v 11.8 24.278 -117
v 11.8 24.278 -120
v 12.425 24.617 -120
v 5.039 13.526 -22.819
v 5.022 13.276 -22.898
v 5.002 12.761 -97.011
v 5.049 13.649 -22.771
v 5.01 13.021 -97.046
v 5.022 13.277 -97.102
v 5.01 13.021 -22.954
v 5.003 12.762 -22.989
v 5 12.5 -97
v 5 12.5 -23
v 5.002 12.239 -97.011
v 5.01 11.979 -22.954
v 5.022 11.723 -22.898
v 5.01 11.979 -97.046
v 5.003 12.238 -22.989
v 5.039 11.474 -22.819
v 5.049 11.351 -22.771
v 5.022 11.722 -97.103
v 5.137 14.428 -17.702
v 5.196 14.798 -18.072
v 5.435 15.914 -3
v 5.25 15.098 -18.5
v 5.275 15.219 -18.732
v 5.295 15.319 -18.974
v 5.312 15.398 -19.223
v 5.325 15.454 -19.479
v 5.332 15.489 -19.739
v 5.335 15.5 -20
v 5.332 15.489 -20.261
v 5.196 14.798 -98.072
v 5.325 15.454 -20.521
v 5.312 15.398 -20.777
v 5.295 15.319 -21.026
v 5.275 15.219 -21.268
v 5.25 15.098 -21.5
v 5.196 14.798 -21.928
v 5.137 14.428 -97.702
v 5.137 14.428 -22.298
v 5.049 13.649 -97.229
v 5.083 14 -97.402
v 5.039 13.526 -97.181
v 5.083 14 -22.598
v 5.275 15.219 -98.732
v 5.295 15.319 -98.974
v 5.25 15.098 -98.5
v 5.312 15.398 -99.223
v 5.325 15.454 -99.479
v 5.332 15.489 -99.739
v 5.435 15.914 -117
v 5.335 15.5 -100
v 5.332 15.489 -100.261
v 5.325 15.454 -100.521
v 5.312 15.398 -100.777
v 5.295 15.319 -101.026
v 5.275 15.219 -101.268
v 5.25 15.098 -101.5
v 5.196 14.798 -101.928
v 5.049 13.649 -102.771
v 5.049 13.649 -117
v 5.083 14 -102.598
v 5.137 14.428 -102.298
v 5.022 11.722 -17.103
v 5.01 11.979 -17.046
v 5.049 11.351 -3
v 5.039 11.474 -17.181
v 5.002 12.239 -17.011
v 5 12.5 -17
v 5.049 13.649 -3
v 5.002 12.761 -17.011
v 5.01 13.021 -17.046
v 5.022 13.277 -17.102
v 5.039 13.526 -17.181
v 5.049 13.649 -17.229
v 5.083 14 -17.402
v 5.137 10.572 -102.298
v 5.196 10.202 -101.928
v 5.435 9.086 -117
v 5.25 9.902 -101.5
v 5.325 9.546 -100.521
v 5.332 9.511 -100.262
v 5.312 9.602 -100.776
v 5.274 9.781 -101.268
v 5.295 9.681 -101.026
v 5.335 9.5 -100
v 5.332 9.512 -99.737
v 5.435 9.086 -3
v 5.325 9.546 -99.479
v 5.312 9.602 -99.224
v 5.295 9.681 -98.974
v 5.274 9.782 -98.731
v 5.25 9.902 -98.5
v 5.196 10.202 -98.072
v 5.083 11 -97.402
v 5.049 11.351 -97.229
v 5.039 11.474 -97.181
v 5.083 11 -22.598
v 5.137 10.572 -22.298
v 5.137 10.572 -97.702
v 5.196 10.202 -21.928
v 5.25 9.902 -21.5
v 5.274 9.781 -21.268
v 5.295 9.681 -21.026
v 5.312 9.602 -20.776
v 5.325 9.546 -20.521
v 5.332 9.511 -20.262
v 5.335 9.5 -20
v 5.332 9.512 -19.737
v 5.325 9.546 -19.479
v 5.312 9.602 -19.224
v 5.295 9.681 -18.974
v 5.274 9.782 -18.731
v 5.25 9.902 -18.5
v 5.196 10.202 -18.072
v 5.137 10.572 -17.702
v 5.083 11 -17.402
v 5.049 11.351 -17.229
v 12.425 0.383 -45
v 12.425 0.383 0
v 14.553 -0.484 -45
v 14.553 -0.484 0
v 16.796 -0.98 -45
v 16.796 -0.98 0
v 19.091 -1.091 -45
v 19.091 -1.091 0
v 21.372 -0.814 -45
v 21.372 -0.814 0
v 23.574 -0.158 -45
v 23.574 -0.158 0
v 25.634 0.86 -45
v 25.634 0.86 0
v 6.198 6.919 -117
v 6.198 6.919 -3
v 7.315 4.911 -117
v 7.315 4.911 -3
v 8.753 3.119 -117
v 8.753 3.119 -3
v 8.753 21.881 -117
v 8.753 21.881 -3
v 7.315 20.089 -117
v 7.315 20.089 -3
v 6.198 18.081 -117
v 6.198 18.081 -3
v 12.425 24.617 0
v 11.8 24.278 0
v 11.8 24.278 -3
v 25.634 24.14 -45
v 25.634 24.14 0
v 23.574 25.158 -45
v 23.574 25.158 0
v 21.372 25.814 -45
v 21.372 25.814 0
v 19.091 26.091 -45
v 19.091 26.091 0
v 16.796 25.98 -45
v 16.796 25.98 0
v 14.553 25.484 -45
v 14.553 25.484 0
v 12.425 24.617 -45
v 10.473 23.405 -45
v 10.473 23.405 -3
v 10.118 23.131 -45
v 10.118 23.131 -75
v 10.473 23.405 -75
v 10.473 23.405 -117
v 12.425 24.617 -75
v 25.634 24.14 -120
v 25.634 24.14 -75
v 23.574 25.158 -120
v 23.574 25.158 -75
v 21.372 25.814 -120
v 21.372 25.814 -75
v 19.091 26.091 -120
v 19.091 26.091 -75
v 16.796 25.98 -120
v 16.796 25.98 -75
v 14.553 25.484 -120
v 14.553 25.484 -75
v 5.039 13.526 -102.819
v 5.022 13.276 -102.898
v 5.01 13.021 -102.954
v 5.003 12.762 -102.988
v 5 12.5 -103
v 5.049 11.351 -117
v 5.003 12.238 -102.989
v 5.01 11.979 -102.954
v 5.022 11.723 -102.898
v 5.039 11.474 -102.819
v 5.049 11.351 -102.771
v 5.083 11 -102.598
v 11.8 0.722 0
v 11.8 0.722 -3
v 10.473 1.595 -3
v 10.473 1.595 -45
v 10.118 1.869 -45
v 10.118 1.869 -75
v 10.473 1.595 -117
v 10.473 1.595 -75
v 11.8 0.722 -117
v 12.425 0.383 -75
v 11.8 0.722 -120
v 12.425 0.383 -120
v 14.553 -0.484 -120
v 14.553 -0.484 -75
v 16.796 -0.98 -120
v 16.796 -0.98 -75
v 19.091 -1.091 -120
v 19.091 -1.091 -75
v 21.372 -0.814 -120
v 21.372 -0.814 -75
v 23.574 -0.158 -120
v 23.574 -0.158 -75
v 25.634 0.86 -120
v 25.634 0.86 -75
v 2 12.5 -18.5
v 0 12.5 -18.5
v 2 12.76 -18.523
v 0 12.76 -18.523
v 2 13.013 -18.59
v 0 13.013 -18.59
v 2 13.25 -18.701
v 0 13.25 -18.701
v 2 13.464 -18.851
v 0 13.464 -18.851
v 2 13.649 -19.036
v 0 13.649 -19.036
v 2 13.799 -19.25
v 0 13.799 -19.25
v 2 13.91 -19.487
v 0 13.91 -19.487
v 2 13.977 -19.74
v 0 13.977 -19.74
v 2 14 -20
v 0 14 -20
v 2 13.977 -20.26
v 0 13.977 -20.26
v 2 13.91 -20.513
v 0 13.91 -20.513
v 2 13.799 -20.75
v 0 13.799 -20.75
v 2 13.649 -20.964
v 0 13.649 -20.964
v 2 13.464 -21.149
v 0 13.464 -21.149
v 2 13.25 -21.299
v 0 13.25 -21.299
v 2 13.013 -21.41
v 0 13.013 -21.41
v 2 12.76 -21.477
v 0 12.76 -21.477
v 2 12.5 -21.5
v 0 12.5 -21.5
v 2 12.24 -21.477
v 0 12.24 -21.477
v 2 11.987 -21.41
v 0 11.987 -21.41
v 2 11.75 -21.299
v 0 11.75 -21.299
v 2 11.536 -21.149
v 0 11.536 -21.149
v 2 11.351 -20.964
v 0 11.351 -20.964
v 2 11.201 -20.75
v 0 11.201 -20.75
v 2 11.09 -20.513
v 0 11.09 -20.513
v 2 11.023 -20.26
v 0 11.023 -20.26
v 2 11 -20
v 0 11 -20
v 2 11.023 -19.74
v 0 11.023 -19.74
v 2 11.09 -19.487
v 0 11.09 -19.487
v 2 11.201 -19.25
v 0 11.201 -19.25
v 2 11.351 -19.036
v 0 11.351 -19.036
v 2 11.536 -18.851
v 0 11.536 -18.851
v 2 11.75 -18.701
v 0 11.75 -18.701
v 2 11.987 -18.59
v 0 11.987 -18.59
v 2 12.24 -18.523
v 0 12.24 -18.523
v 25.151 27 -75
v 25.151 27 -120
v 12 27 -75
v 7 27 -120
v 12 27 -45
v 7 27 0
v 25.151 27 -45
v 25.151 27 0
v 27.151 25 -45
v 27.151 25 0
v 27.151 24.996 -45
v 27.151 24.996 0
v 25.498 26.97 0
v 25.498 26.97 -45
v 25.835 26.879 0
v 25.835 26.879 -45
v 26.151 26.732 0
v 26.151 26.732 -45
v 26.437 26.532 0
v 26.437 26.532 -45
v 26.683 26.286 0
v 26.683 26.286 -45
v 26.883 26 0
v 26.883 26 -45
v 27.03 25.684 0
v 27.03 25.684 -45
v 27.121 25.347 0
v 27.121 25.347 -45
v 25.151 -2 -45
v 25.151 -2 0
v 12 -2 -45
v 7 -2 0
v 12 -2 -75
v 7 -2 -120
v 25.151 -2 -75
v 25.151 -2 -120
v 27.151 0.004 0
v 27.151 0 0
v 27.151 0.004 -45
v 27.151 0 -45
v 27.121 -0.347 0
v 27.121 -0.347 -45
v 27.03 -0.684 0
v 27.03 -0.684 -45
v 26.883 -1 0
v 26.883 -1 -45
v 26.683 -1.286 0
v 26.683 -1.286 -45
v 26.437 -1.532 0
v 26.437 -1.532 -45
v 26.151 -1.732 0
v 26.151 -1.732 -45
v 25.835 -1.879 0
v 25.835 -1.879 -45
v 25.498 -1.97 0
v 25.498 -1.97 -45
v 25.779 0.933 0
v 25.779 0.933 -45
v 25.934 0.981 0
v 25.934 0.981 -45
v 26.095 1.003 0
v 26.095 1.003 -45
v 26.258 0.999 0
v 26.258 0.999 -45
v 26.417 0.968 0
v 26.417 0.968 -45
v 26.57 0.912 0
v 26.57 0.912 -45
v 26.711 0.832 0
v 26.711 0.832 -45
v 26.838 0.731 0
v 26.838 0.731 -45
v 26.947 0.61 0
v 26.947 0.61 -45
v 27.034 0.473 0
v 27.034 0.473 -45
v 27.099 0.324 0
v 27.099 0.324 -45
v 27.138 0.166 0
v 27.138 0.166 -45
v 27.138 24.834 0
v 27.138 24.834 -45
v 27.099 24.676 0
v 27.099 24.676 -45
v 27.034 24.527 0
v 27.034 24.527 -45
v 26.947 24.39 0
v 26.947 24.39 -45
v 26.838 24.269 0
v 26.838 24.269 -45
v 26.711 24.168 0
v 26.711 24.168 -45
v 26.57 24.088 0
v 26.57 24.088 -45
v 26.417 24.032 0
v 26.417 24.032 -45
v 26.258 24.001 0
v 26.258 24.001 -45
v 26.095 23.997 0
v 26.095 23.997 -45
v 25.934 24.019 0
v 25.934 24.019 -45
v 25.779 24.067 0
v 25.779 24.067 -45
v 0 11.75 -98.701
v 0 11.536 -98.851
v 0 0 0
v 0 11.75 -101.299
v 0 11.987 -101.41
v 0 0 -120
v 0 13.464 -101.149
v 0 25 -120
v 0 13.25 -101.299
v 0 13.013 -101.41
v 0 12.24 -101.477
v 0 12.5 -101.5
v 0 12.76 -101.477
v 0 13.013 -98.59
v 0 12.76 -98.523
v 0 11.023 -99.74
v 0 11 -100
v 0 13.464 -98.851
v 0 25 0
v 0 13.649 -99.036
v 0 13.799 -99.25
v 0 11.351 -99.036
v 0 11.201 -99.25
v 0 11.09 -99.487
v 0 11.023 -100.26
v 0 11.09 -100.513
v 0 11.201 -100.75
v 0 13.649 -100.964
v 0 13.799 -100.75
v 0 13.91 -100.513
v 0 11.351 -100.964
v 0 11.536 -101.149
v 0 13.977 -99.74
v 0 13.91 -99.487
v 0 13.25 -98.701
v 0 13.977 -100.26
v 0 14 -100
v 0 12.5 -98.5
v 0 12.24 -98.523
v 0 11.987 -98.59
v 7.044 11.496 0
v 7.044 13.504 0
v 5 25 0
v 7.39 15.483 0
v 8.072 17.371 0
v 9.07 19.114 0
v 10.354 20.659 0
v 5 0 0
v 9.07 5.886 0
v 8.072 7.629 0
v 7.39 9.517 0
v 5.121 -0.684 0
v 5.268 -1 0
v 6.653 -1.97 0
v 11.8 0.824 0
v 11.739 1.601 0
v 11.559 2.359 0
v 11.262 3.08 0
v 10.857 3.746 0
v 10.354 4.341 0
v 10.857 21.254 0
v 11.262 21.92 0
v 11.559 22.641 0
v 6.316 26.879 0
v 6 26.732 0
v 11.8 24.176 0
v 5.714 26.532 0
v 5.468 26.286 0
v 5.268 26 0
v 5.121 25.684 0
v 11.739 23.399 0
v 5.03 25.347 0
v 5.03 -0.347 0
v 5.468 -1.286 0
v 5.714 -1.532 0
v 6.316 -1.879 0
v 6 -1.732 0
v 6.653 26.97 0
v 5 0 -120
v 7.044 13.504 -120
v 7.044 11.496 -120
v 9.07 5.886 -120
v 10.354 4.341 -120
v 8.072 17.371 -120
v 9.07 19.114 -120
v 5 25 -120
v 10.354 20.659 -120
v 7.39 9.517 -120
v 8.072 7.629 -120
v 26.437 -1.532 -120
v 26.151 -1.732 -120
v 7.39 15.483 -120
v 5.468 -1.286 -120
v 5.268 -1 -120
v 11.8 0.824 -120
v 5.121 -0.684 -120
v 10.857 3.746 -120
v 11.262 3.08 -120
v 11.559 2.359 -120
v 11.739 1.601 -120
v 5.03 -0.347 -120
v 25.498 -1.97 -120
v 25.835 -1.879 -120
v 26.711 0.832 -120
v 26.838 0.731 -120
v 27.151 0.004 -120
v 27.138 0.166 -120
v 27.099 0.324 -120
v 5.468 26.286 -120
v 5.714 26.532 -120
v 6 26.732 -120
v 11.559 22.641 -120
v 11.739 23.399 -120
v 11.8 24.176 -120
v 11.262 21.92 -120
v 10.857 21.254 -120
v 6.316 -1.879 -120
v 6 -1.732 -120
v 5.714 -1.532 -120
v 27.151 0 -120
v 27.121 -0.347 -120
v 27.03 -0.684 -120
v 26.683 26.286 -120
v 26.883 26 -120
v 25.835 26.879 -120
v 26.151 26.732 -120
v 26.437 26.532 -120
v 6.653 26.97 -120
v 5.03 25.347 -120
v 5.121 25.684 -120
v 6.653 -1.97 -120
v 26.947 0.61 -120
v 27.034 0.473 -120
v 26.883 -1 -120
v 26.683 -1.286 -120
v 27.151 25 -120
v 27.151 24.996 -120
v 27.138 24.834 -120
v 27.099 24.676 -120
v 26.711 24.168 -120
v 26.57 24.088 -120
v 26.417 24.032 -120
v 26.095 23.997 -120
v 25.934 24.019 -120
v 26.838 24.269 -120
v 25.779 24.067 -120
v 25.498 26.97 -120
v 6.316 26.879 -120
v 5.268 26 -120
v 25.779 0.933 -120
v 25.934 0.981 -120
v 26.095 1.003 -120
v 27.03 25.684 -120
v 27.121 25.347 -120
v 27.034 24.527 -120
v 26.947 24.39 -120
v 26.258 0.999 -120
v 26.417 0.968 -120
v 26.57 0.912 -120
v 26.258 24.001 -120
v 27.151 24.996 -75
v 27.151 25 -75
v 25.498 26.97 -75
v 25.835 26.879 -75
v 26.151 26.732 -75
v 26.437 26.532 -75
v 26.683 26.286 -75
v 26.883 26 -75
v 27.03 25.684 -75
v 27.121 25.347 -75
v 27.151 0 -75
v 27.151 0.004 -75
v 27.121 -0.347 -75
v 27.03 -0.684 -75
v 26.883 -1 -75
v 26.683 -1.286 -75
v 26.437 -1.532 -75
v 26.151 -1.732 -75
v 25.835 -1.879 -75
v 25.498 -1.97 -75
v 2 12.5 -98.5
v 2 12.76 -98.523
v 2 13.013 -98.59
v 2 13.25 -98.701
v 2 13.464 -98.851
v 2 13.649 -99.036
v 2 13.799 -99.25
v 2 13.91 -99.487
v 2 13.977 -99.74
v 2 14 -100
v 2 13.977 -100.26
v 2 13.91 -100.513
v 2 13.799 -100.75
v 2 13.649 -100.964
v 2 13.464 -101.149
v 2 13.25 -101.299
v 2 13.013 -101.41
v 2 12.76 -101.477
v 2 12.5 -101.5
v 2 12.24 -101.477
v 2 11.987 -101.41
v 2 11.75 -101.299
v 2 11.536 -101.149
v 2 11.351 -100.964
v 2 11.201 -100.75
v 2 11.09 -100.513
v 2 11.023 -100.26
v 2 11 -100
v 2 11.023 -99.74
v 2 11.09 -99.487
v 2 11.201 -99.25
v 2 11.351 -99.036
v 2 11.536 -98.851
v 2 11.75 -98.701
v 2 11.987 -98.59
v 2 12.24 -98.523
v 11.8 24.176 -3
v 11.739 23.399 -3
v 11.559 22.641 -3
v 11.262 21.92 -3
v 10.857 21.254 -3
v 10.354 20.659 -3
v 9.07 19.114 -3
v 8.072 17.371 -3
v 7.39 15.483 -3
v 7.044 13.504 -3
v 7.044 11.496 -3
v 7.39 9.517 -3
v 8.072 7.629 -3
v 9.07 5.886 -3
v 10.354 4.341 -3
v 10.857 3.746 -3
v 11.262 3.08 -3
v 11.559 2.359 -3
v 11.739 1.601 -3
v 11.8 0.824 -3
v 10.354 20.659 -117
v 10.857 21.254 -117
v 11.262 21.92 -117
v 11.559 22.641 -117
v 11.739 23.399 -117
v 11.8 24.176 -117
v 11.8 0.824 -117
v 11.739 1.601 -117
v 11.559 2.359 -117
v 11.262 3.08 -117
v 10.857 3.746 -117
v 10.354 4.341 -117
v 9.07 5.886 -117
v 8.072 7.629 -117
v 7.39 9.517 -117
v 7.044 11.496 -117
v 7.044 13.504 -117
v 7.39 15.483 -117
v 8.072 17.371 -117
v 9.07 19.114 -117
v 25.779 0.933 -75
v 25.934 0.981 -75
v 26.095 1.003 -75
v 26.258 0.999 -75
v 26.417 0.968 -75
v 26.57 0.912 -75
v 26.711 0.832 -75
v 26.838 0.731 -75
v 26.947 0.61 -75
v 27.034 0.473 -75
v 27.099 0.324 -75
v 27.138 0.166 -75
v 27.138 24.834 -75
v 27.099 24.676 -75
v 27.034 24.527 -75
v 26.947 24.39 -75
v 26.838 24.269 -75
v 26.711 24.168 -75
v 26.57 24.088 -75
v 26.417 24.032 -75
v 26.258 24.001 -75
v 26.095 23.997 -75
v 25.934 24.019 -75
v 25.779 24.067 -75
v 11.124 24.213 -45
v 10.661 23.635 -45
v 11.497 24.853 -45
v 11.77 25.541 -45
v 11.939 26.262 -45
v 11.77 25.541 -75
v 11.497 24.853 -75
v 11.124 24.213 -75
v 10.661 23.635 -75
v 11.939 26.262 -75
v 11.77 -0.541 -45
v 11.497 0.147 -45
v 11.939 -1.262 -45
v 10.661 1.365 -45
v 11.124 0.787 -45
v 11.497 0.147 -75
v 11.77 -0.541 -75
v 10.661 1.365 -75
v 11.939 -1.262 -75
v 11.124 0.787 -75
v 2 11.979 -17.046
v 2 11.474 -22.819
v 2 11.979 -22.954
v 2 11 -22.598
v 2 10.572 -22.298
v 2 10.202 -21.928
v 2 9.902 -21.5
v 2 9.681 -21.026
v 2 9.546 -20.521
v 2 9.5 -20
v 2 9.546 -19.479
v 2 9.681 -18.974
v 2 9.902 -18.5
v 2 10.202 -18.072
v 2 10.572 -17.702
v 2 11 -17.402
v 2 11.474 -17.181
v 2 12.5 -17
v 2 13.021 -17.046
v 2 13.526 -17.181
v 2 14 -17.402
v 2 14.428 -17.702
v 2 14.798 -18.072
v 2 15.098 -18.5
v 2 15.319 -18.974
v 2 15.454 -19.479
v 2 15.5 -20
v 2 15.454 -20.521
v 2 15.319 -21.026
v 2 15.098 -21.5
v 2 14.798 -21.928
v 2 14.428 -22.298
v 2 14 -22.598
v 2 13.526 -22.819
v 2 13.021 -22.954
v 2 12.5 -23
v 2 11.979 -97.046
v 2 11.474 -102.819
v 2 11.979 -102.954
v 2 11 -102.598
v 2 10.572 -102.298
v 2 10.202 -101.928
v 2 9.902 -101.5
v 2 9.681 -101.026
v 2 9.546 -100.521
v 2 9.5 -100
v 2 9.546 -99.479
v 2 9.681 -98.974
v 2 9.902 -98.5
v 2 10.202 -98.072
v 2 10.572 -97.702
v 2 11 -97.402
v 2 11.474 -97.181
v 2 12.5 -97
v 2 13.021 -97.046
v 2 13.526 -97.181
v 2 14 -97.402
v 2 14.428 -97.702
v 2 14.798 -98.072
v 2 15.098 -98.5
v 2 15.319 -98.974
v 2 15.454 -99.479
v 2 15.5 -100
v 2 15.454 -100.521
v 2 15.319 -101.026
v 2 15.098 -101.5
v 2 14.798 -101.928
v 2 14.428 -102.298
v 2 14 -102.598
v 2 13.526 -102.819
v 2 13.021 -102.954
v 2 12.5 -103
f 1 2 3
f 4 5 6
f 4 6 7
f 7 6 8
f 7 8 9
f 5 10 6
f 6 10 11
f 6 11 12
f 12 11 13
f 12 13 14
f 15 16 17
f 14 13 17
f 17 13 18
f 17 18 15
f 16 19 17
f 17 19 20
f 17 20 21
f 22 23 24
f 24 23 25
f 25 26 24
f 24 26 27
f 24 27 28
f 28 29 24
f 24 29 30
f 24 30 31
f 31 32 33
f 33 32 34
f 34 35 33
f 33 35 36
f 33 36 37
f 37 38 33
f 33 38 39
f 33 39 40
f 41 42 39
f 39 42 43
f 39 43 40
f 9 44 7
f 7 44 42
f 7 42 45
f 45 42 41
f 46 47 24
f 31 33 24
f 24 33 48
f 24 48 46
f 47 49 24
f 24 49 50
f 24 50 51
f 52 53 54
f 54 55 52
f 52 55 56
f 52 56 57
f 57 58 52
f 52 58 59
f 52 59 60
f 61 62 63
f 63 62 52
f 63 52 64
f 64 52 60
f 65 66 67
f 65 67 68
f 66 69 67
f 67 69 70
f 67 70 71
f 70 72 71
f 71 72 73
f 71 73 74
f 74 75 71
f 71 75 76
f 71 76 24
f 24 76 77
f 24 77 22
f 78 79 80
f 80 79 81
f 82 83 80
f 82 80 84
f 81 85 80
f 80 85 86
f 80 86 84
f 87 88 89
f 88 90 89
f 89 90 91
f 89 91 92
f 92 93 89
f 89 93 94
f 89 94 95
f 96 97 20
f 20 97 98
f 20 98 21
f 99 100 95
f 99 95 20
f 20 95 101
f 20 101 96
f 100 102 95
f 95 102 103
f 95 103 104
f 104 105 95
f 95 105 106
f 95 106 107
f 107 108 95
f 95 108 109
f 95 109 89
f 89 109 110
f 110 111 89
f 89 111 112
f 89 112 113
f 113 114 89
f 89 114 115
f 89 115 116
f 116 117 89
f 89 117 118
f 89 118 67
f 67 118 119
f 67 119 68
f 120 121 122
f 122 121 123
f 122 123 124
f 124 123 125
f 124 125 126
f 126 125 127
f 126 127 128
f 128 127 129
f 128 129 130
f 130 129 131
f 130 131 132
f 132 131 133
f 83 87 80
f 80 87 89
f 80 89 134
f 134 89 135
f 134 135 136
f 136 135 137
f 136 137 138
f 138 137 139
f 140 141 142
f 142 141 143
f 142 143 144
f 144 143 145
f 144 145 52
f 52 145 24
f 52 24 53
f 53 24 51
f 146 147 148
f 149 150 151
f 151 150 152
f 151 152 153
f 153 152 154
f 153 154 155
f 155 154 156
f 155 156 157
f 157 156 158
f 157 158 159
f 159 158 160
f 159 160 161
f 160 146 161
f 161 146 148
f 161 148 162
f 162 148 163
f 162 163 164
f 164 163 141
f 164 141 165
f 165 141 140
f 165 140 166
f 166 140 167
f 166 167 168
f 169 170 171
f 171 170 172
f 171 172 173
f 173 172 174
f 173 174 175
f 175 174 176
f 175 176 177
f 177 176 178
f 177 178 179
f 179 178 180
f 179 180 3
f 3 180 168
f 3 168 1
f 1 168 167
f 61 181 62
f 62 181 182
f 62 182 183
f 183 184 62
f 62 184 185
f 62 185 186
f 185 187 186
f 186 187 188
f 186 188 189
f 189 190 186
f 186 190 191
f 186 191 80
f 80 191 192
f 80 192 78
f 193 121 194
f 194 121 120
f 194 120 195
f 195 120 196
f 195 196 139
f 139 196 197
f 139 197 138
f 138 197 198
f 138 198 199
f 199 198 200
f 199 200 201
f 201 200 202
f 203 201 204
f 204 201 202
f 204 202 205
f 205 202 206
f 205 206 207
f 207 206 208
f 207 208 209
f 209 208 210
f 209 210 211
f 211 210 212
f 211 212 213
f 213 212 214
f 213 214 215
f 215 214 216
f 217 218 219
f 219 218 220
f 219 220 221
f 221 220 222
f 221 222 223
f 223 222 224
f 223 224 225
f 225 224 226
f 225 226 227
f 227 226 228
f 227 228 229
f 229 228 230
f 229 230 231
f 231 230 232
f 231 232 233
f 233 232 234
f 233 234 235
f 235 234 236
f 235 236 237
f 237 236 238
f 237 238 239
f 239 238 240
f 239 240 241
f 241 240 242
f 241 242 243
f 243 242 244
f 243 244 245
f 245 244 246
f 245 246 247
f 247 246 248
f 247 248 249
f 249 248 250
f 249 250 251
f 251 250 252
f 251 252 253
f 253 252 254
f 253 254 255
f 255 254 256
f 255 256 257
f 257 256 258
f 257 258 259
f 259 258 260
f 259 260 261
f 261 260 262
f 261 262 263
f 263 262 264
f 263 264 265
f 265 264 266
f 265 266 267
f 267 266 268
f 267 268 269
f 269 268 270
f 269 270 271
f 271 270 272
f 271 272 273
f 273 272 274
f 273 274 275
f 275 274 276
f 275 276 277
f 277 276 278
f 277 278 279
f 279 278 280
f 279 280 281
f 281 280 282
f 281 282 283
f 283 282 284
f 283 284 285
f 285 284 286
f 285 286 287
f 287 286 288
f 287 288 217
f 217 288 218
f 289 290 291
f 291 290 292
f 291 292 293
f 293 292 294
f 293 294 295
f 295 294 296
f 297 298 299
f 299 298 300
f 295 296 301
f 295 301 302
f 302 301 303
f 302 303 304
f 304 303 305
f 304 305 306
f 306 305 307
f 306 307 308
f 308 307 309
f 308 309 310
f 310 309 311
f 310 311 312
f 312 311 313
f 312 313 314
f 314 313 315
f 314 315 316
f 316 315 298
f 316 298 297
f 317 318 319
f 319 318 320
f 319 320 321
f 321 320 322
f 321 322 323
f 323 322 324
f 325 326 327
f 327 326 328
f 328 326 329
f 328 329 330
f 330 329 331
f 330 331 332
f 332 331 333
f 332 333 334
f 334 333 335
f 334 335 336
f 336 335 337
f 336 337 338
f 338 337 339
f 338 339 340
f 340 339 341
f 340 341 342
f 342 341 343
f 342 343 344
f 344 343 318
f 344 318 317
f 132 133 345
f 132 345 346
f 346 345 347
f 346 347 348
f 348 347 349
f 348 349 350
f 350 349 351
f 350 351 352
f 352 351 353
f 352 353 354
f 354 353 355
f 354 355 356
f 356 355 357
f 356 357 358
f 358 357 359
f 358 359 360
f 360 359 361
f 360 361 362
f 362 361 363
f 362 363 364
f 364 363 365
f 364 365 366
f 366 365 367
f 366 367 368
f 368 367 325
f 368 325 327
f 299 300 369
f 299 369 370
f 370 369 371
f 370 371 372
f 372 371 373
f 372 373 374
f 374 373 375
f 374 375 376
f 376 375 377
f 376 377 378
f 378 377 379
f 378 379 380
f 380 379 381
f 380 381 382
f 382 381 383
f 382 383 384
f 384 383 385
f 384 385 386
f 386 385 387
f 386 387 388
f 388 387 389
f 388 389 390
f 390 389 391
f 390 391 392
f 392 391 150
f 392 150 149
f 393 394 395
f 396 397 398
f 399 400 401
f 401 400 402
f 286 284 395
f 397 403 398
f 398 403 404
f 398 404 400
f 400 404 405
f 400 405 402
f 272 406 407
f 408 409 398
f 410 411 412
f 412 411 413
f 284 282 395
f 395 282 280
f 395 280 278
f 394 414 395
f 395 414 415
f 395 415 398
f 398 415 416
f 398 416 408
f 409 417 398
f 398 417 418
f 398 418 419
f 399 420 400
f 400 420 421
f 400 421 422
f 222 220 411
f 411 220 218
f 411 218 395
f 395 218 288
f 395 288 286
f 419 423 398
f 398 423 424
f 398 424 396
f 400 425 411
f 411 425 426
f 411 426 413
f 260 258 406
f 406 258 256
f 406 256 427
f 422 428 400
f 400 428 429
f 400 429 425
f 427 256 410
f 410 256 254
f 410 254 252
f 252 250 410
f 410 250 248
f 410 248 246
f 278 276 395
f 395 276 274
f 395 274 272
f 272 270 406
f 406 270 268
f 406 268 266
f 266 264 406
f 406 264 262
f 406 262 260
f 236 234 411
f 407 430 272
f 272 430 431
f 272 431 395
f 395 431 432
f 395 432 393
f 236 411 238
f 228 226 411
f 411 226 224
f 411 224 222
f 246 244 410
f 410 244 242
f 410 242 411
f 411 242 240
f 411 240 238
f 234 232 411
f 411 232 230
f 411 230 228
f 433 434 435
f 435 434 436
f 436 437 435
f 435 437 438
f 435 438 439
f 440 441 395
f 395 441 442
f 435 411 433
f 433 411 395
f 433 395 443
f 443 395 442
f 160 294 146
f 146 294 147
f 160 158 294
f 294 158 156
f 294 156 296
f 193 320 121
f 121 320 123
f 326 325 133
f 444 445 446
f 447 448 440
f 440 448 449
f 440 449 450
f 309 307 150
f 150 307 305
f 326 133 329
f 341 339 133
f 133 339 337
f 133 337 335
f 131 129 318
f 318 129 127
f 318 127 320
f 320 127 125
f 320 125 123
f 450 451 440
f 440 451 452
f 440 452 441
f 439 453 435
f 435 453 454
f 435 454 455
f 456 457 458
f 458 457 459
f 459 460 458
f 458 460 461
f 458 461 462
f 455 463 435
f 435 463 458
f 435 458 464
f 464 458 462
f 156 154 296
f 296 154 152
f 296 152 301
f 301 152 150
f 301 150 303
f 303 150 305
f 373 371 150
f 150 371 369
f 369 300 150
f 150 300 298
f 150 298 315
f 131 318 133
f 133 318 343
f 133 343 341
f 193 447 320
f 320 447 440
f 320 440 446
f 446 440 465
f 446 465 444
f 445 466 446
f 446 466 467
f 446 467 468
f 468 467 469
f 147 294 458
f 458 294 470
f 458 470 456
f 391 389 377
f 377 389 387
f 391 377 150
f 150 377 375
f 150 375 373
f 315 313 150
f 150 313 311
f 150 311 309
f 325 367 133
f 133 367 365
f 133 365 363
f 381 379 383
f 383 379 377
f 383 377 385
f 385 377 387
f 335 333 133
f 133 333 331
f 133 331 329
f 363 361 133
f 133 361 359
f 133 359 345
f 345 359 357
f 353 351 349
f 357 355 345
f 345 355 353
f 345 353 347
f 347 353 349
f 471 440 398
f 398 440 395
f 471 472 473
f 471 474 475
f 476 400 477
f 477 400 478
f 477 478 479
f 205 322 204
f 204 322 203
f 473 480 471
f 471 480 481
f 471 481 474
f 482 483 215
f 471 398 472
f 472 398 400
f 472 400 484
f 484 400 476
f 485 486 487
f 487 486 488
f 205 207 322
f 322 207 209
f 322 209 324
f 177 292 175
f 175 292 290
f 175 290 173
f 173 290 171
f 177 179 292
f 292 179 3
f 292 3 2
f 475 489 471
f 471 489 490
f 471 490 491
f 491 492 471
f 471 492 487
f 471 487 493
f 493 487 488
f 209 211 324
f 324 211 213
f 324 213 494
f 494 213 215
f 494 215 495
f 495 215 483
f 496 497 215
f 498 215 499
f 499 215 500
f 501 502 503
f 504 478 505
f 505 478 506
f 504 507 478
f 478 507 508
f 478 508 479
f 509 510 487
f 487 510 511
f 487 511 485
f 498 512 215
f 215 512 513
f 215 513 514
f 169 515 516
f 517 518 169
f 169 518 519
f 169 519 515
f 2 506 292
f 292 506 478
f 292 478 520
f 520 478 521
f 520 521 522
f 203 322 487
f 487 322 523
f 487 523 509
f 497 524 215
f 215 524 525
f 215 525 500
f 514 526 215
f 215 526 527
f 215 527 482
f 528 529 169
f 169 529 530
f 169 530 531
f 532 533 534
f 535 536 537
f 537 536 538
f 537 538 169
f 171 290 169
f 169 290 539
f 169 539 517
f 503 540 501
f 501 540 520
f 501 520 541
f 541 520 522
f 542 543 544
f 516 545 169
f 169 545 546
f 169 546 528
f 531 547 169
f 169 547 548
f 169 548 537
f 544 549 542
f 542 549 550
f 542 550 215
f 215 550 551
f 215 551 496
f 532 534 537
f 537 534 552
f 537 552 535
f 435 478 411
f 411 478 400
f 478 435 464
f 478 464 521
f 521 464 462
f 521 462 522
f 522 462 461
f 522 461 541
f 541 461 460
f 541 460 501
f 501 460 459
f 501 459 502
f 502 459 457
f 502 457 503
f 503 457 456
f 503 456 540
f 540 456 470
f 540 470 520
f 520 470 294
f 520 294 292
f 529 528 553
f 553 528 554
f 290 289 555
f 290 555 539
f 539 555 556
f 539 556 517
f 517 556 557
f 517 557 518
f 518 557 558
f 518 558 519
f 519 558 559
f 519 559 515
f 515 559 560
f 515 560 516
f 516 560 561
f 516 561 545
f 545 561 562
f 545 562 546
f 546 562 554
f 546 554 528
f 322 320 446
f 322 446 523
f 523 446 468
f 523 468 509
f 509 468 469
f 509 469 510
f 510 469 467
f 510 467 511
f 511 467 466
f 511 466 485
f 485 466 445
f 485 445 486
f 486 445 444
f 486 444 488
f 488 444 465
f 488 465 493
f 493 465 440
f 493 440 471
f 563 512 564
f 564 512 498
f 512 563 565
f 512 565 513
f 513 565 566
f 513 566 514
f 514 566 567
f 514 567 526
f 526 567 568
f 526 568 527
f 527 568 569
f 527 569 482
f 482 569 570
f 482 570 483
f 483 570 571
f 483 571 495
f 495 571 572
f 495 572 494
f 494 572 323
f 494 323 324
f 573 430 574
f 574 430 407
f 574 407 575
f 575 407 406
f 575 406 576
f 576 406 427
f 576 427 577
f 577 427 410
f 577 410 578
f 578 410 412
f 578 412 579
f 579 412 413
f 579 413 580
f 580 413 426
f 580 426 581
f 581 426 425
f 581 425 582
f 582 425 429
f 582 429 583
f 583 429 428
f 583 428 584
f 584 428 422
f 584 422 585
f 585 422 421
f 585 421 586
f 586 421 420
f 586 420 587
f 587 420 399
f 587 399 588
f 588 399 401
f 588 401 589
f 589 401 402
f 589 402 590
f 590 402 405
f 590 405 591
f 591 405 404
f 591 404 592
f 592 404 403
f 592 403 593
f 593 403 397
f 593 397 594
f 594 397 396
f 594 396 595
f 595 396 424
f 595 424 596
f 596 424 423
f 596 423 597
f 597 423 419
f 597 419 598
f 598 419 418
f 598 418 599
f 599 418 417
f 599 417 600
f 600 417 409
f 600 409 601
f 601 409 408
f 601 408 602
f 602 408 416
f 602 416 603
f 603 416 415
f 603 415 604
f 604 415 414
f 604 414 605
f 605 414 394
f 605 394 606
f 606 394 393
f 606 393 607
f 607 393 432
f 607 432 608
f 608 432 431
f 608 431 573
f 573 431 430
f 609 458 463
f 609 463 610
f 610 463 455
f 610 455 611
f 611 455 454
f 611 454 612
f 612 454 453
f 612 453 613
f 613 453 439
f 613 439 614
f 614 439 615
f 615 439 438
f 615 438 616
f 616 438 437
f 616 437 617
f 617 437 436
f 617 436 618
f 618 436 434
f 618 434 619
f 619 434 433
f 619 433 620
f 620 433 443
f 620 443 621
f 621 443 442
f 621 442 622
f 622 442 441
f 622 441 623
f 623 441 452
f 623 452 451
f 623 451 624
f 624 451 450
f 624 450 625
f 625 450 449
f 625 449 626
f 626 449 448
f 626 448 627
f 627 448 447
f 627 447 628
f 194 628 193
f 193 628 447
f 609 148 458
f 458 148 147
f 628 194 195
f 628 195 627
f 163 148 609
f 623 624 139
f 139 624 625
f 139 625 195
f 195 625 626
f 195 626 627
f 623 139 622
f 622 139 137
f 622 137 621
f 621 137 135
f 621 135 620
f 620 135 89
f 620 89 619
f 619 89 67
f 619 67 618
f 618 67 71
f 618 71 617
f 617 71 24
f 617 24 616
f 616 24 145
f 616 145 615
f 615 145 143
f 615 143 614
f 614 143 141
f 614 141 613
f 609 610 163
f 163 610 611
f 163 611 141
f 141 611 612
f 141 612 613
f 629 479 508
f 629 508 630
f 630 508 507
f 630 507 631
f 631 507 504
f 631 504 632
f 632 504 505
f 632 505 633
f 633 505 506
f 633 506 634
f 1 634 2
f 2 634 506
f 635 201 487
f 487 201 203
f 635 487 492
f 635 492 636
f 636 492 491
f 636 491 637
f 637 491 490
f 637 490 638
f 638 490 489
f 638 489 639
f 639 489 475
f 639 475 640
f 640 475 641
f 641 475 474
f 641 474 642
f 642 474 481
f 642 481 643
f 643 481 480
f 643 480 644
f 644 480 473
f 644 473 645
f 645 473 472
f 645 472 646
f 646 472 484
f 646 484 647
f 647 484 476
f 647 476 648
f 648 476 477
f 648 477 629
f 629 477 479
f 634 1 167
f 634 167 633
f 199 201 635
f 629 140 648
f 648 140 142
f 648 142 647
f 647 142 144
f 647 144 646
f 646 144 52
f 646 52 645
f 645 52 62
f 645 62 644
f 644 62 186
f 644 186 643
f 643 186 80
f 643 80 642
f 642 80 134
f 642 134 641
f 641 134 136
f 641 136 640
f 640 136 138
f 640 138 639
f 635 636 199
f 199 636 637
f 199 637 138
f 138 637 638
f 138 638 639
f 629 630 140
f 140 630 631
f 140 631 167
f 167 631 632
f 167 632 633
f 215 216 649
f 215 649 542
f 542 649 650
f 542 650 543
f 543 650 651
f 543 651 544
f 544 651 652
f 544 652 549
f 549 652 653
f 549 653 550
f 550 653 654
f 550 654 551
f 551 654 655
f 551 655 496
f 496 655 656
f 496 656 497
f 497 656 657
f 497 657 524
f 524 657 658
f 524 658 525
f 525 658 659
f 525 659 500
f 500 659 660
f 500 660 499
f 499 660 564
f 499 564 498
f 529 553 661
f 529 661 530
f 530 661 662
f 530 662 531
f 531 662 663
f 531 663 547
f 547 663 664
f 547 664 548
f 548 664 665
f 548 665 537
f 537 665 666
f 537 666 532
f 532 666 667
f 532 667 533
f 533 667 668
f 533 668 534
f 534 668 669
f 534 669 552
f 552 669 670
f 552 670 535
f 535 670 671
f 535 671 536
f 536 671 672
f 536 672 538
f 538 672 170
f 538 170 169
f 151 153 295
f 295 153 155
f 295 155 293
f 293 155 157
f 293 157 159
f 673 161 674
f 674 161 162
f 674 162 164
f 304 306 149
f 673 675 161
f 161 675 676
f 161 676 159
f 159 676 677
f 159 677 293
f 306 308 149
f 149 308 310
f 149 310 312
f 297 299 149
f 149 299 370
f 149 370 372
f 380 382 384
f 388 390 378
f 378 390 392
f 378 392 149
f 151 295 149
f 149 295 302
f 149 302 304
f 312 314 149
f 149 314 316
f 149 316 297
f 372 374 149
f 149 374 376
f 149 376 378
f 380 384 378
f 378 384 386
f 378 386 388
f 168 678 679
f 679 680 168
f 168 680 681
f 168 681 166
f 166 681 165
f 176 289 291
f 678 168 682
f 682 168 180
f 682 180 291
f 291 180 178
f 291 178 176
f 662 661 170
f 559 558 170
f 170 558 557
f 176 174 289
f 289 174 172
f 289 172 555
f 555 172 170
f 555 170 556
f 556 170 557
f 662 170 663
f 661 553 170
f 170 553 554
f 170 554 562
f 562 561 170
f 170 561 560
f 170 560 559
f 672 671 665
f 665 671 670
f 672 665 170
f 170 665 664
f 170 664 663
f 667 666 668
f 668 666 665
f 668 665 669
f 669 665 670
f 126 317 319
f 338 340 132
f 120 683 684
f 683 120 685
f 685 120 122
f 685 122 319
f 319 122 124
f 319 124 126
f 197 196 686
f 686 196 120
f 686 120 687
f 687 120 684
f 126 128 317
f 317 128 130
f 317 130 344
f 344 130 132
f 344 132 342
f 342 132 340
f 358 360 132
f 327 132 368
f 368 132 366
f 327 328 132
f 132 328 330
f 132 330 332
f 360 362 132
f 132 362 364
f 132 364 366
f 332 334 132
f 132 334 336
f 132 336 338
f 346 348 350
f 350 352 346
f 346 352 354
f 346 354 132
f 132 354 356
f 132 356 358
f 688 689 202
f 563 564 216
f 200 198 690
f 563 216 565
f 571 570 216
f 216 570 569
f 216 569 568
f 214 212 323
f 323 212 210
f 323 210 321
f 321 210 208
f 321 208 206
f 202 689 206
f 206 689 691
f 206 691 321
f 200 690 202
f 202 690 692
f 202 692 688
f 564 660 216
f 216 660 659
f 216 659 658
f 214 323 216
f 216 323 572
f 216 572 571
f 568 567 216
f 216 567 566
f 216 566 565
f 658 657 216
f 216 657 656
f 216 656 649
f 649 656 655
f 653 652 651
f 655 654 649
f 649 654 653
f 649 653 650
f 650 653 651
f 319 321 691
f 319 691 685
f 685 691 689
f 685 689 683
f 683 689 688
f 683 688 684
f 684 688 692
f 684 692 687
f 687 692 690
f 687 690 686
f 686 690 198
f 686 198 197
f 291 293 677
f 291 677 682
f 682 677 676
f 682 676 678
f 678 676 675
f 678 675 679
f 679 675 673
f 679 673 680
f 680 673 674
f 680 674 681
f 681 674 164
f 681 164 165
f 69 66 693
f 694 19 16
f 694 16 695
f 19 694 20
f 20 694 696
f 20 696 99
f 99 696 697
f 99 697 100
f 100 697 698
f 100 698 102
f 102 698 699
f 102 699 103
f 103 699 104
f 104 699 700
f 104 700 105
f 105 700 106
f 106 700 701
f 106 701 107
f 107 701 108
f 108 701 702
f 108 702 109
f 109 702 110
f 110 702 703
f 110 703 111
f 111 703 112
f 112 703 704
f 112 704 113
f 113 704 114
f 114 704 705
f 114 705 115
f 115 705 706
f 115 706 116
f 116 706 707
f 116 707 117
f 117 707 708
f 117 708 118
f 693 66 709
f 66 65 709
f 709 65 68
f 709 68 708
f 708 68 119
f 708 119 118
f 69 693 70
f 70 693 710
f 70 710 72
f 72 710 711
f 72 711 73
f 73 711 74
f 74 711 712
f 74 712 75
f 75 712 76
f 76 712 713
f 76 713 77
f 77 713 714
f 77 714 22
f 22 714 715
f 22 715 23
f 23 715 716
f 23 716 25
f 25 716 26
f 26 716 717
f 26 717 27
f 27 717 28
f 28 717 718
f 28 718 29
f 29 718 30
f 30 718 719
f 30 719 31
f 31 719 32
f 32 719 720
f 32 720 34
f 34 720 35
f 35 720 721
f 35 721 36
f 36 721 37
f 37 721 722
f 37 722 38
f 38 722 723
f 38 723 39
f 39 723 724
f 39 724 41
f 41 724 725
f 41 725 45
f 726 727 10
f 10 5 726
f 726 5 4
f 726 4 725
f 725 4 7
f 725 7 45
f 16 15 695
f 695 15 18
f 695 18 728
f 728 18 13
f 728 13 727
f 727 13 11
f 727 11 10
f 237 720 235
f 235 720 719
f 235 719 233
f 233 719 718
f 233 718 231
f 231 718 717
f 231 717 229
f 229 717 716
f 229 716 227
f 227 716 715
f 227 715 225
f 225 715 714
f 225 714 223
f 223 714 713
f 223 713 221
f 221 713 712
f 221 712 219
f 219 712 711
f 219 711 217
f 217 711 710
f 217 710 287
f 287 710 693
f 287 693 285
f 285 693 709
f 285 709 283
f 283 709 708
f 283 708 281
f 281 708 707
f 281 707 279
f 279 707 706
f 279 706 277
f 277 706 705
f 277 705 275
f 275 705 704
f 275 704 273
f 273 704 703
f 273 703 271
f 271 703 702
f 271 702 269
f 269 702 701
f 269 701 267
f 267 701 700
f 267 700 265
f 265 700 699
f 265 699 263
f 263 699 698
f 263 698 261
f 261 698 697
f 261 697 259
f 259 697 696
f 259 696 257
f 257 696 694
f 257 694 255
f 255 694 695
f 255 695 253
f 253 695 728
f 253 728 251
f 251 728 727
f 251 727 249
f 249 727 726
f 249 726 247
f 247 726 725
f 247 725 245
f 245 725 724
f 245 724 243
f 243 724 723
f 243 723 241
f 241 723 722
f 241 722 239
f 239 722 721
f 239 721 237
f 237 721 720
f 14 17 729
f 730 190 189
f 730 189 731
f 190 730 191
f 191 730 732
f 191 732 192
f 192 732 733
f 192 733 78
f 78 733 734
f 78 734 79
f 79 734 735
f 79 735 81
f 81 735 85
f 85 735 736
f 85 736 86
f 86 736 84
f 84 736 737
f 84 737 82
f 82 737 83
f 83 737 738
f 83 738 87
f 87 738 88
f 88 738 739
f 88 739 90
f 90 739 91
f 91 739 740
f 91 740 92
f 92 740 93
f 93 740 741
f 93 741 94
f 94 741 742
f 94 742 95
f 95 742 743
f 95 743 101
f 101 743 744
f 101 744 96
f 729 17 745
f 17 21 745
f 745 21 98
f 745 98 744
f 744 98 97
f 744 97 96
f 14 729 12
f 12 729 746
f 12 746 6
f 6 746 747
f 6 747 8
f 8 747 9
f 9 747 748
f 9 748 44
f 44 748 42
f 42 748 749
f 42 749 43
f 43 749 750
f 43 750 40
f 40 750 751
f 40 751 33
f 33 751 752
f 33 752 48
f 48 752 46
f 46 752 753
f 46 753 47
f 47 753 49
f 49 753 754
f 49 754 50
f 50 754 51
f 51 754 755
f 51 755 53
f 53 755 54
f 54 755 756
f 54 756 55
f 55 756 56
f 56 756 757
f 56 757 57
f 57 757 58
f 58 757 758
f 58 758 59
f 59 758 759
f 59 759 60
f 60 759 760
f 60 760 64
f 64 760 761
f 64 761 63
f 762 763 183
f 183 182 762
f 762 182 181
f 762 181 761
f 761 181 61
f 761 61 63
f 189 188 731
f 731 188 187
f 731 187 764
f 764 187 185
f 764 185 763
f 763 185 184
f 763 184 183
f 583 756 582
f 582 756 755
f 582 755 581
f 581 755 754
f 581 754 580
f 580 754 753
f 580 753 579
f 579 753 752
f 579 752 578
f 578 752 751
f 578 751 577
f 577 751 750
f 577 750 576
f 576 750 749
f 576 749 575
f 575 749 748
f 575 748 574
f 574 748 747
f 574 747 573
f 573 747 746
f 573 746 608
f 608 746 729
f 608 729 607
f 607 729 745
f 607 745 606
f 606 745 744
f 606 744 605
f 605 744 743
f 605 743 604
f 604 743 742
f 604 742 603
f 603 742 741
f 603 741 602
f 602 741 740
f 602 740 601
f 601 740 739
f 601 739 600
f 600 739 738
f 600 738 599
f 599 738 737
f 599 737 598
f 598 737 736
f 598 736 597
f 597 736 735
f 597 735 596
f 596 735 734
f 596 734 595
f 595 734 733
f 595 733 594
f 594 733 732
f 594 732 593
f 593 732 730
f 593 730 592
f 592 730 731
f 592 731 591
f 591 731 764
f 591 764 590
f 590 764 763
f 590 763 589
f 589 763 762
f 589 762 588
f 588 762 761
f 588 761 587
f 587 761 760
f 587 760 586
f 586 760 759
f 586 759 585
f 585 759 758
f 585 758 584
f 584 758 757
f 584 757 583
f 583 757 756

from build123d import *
from build123d.topology import SkipClean

# Parameters (mm, degrees)
SKETCH1_W          = 120
SKETCH1_H          = 25
BASE_DEPTH         = 5
CLIP_DEPTH         = 120
SKETCH3_R          = 1.5
SCREWHOLES_DEPTH   = 10
CLIPWALL_DEPTH     = 3
ROUNDEDCORNERS_R   = 1
SKETCH5_W          = 15.150992531
SKETCH5_H          = 29
FINGERGAP_DEPTH    = 15
FINGERGROOVE_R     = 5
CUT_EXTRUDE1_START = -2
SKETCH3_3_R        = 3
SKETCH3_3_R_2      = 1.5
CUT_EXTRUDE1_DEPTH = 5


with BuildPart() as part:
    # Sketch1 → Base (new body)
    with BuildSketch(Plane(origin=(0, 0, 0), x_dir=(0, 0, -1), z_dir=(1, 0, 0))):
        with Locations((60, 12.5)):
            Rectangle(SKETCH1_W, SKETCH1_H)
    extrude(amount=BASE_DEPTH)

    # Sketch2 → Clip (add)
    with BuildSketch(Plane.XY):
        with BuildLine():
            Line((25.150992531, 27), (7, 27))
            ThreePointArc((7, 27), (5.585786438, 26.414213562), (5, 25))
            Line((5, 25), (5, 12.5))
            ThreePointArc((5, 12.5), (12.740541767, 24.773008971), (27.150992531, 23.075468156))
            Line((27.150992531, 23.075468156), (27.150992531, 25))
            ThreePointArc((27.150992531, 25), (26.565206094, 26.414213562), (25.150992531, 27))
        make_face()
        with BuildLine():
            ThreePointArc((27.150992531, 1.924531844), (12.740541767, 0.226991029), (5, 12.5))
            Line((5, 12.5), (5, 0))
            ThreePointArc((5, 0), (5.585786438, -1.414213562), (7, -2))
            Line((7, -2), (25.150992531, -2))
            ThreePointArc((25.150992531, -2), (26.565206094, -1.414213562), (27.150992531, 0))
            Line((27.150992531, 0), (27.150992531, 1.924531844))
        make_face()
    extrude(amount=-CLIP_DEPTH)

    # Sketch3 → ScrewHoles (cut)
    with SkipClean():  # the faces are left unmerged after this step: merging them gives an invalid solid
        with BuildSketch(Plane.ZY):
            with Locations((-100, 12.5)):
                Circle(SKETCH3_R)
            with Locations((-20, 12.5)):
                Circle(SKETCH3_R)
        extrude(amount=-SCREWHOLES_DEPTH, mode=Mode.SUBTRACT)

    # Sketch4 → ClipWall (add)
    with SkipClean():  # the faces are left unmerged after this step: merging them gives an invalid solid
        with BuildSketch(Plane.XY):
            with BuildLine():
                ThreePointArc((10.354216867, 4.341136076), (7, 12.5), (10.354216867, 20.658863924))
                ThreePointArc((10.354216867, 20.658863924), (11.424450472, 22.274442864), (11.8, 24.175615615))
                Line((11.8, 24.175615615), (11.8, 24.277945491))
                ThreePointArc((11.8, 24.277945491), (5, 12.5), (11.8, 0.722054509))
                Line((11.8, 0.722054509), (11.8, 0.824384385))
                ThreePointArc((11.8, 0.824384385), (11.424450472, 2.725557136), (10.354216867, 4.341136076))
            make_face()
        clipwall = extrude(amount=-CLIPWALL_DEPTH)

    # Mirror1: ClipWall across plane
    with SkipClean():  # the faces are left unmerged after this step: merging them gives an invalid solid
        add(clipwall.mirror(Plane(origin=(0, 0, -60), x_dir=(1, 0, 0), z_dir=(0, 0, -1))))

    # RoundedCorners
    roundedcorners_edges = [part.edges().sort_by_distance(p)[0] for p in [
        (27.150992531, 23.075468156, -60),
        (27.150992531, 1.924531844, -60),
    ]]
    fillet(roundedcorners_edges, radius=ROUNDEDCORNERS_R)

    # Sketch5 → FingerGap (cut, symmetric)
    with BuildSketch(Plane(origin=(0, 0, -60), x_dir=(-1, 0, 0), z_dir=(0, 0, -1))):
        with Locations((-19.575496265, 12.5)):
            Rectangle(SKETCH5_W, SKETCH5_H)
    extrude(amount=FINGERGAP_DEPTH, both=True, mode=Mode.SUBTRACT)

    # FingerGroove
    # the kernel refuses this fillet: 5 mm, written as the material it takes off along each edge
    with BuildSketch(Plane(origin=(12, 0.608826803, -75), x_dir=(0, -1, 0), z_dir=(0, 0, 1))) as fingergroove_piece_1:
        with BuildLine():
            CenterArc((2.648427898, -5), FINGERGROOVE_R, 90, 51.416397028)
            ThreePointArc((-1.26006702, -1.88172043), (-0.590797761, -0.96713387), (0, 0))
            Line((0, 0), (2.648427898, 0))
        make_face()
    extrude(amount=30, mode=Mode.SUBTRACT)
    with BuildSketch(Plane(origin=(12, 24.391173197, -75), x_dir=(0, 1, 0), z_dir=(0, 0, 1))) as fingergroove_piece_2:
        with BuildLine():
            CenterArc((2.648427898, 5), FINGERGROOVE_R, 218.583602972, 51.416397028)
            ThreePointArc((-1.26006702, 1.88172043), (-0.590797761, 0.96713387), (0, 0))
            Line((0, 0), (2.648427898, 0))
        make_face()
    extrude(amount=30, mode=Mode.SUBTRACT)

    # Sketch3<3> → Cut-Extrude1 (cut)
    # profile 1 of 2: a face of its own
    with BuildSketch(Plane.ZY.offset(CUT_EXTRUDE1_START)):
        with Locations(Location((-100, 12.5, 0), (0, 0, 180))):
            Circle(SKETCH3_3_R)
        with Locations((-100, 12.5)):
            Circle(SKETCH3_3_R_2, mode=Mode.SUBTRACT)
    # profile 2 of 2: a face of its own
    with BuildSketch(Plane.ZY.offset(CUT_EXTRUDE1_START)):
        with Locations(Location((-20, 12.5, 0), (0, 0, 180))):
            Circle(SKETCH3_3_R)
        with Locations(Location((-20, 12.5, 0), (0, 0, 180))):
            Circle(SKETCH3_3_R_2, mode=Mode.SUBTRACT)
    extrude(amount=-CUT_EXTRUDE1_DEPTH, mode=Mode.SUBTRACT)


solid = part.part
